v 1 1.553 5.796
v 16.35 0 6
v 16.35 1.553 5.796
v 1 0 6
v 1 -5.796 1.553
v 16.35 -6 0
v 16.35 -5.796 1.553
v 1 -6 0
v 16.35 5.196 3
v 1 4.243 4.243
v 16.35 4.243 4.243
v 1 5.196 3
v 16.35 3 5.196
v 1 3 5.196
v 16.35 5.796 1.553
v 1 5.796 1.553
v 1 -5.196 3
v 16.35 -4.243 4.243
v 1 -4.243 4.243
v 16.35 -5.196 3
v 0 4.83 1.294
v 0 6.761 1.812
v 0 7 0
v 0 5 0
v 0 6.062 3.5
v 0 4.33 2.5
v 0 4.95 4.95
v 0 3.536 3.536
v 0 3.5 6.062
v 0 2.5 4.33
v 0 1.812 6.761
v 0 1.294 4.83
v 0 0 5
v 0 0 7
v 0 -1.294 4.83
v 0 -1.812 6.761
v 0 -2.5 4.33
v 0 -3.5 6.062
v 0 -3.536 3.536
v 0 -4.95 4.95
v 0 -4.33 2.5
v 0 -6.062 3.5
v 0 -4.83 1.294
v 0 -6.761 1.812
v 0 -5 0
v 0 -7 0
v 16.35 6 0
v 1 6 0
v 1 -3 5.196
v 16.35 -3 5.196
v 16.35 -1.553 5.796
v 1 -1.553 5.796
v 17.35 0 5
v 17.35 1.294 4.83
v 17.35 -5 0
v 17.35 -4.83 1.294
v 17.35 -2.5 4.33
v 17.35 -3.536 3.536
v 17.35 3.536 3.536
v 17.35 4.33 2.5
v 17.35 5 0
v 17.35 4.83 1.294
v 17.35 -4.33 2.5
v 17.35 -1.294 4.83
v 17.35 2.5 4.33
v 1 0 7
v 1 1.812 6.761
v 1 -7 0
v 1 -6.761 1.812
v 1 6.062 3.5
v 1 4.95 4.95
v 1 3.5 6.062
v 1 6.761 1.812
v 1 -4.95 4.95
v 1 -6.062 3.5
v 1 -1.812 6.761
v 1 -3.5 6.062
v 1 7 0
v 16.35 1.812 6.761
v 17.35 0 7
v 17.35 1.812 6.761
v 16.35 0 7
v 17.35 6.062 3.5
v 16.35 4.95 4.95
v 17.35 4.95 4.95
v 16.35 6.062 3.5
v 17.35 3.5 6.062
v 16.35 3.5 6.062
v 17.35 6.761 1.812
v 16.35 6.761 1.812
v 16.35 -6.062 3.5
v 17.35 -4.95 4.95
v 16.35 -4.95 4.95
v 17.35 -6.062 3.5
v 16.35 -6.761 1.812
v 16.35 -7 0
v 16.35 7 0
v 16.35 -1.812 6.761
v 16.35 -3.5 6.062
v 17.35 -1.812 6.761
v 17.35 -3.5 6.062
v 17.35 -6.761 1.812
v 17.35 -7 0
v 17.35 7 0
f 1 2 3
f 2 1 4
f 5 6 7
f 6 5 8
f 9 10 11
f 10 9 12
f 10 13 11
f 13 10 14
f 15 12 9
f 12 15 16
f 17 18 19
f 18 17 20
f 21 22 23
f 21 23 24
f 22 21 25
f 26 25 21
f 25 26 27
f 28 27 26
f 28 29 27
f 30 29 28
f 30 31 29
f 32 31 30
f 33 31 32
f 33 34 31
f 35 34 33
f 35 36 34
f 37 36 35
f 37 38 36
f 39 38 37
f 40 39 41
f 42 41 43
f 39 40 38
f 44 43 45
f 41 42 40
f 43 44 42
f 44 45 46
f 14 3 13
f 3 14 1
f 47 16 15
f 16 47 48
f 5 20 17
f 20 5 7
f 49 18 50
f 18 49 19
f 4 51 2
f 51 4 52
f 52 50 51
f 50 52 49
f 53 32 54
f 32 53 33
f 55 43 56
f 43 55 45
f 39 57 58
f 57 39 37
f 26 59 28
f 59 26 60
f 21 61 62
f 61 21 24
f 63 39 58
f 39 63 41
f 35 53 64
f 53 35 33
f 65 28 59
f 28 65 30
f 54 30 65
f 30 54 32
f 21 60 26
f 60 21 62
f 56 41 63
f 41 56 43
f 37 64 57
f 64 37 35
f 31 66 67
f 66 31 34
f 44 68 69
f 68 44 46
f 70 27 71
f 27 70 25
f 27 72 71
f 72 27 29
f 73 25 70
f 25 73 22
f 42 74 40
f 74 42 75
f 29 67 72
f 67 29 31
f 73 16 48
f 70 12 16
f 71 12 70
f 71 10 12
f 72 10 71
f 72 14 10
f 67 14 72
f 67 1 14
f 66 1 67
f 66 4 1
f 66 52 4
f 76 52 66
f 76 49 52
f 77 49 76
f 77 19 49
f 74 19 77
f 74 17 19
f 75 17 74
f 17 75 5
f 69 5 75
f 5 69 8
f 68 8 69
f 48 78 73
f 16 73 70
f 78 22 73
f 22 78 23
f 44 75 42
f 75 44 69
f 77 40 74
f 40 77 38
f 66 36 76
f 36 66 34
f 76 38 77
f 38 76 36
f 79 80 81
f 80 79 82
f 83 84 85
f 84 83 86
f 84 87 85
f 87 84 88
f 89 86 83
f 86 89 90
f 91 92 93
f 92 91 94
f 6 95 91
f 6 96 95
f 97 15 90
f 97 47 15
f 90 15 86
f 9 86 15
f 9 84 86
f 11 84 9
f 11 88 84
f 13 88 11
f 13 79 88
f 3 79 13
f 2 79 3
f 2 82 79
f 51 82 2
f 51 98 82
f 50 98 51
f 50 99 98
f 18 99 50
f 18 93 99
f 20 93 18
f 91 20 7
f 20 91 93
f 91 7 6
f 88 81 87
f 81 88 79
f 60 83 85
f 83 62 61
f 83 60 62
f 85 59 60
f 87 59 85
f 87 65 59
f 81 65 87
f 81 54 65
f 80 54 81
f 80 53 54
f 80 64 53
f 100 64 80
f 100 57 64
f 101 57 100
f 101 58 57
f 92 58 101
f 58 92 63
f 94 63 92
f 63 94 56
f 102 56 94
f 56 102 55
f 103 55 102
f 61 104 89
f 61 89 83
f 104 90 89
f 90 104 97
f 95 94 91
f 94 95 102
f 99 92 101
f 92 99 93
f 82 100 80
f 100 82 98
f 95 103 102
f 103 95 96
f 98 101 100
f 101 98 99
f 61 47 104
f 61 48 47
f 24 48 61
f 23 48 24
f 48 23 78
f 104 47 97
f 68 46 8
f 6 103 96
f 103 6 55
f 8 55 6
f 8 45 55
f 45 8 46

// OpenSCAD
// file: ../build_environments.scad
// build_environments.scad: modules to build level sections
//

module pool(diameter=10.0, wall_height=2.0, step_width=3.0, connections=[])
{
    difference() {
        union() {
        difference() {
            cylinder(h=0.5,r1=diameter+step_width,r2=diameter+step_width,$fn=48);
            translate([0,0,-0.1])
                cylinder(h=0.7,r1=diameter,r2=diameter,$fn=48);
        }
        difference() {
            cylinder(h=wall_height,r1=diameter+step_width+1.0,r2=diameter+step_width+1.0,$fn=48);
            translate([0,0,-0.1])
                cylinder(h=wall_height+0.2,r1=diameter+step_width,r2=diameter+step_width,$fn=48);
        }
        }
    
        for (c = connections)
        {
            rotate([0,90,0]) {
                angle = atan2(c[1],c[0]);
                rotate([-angle,0,0]) {
                    cylinder(h=diameter+5.0,r1=c[2],r2=c[2],$fn=48);
                }
            }
        }
    }
}

module straight(length=10.0, width=2.0, dy1=0.0, dy2=0.0, dz=0.0)
{
    dims = [0, 0, 0, 0, 0, (dz/length)];
    matrix = [
        [ 1, dims[0], dims[1], 0 ],
        [ dims[2], 1, dims[4], 0 ],
        [ dims[5], dims[3], 1, 0 ],
        [ 0, 0, 0, 1 ]
    ];
    multmatrix(matrix)
    difference() {
        translate([dy1,0,0])
        union() {
            rotate([0,90,0]) {
                difference() {
                    cylinder(h=(length-dy1-dy2),r1=width+1.0,r2=width+1.0,$fn=24);
                    translate([0,0,-0.1])
                        cylinder(h=(length-dy1-dy2+0.2),r1=width,r2=width,$fn=24);
                }
                difference() {
                    cylinder(h=1.0,r1=width+2.0,r2=width+2.0,$fn=24);
                    translate([0,0,-0.1])
                        cylinder(h=1.2,r1=width,r2=width,$fn=24);
                }
                translate([0,0,(length-dy1-dy2)-1.0]) {
                    difference() {
                        cylinder(h=1.0,r1=width+2.0,r2=width+2.0,$fn=24);
                        translate([0,0,-0.1])
                            cylinder(h=1.2,r1=width,r2=width,$fn=24);
                    }
                }
            }
        }
        translate([0,0,-(2*width+4.0)/2])
            cube([3*length,3*length,2*width+4.0],center=true);
    }
}

module curve(p0=[0,0], center=[0,0], dir=1, angle=0.0, width=2.0)
{
    radius = sqrt((p0[0]-center[0])*(p0[0]-center[0]) + (p0[1]-center[1])*(p0[1]-center[1]));
    if (dir == 0) {
        difference() {
            rotate([0,0,-90])
            difference() {
                rotate_extrude(angle = angle, convexity = 10, $fn=32)
                    translate([radius, 0, 0])
                        circle(r = width+1.0,$fn=24);
                rotate([0,0,-1.0])
                    rotate_extrude(angle = angle+2.0, convexity = 10, $fn=32)
                        translate([radius, 0, 0])
                            circle(r = width,$fn=24);
            }
            translate([0,0,-(2*width+4.0)/2])
                cube([5*radius,5*radius,2*width+4.0],center=true);
        }
    }
    else {
        difference() {
            rotate([0,0,90])
            difference() {
                rotate_extrude(angle = -angle, convexity = 10, $fn=32)
                    translate([radius, 0, 0])
                        circle(r = width+1.0,$fn=24);
                rotate([0,0,1.0])
                    rotate_extrude(angle = -angle-2.0, convexity = 10, $fn=32)
                        translate([radius, 0, 0])
                            circle(r = width,$fn=24);
            }
            translate([0,0,-(2*width+4.0)/2])
                cube([5*radius,5*radius,2*width+4.0],center=true);
        }
    }

}

// test pool
//pool(diameter=12.0000, wall_height=3.0000, step_width=3.0000, connections=[[0.0000,-26.0000,2.0000], [23.6074,0.0000,2.0000]]);

// test straight, slope
//straight(length=26.0000, width=2.0000, dy1=11.8322, dy2=6.7082, dz=0.0000);
//straight(length=29.1549, width=12.0000, dy1=0.0000, dy2=0.0000, dz=-15.0000);

// test curve
//curve(p0=[23.6074, 0.0000], center=[23.6074, 5.0000], dir=0, angle=60.1011, width=2.0000);
//curve(p0=[33.6426, 12.4219], center=[37.9771, 9.9295], dir=1, angle=120.4627, width=2.0000);
// main file
use <../build_environments.scad>;
straight(length=17.3497, width=5.0000, dy1=0.0000, dy2=0.0000, dz=0.0000);
